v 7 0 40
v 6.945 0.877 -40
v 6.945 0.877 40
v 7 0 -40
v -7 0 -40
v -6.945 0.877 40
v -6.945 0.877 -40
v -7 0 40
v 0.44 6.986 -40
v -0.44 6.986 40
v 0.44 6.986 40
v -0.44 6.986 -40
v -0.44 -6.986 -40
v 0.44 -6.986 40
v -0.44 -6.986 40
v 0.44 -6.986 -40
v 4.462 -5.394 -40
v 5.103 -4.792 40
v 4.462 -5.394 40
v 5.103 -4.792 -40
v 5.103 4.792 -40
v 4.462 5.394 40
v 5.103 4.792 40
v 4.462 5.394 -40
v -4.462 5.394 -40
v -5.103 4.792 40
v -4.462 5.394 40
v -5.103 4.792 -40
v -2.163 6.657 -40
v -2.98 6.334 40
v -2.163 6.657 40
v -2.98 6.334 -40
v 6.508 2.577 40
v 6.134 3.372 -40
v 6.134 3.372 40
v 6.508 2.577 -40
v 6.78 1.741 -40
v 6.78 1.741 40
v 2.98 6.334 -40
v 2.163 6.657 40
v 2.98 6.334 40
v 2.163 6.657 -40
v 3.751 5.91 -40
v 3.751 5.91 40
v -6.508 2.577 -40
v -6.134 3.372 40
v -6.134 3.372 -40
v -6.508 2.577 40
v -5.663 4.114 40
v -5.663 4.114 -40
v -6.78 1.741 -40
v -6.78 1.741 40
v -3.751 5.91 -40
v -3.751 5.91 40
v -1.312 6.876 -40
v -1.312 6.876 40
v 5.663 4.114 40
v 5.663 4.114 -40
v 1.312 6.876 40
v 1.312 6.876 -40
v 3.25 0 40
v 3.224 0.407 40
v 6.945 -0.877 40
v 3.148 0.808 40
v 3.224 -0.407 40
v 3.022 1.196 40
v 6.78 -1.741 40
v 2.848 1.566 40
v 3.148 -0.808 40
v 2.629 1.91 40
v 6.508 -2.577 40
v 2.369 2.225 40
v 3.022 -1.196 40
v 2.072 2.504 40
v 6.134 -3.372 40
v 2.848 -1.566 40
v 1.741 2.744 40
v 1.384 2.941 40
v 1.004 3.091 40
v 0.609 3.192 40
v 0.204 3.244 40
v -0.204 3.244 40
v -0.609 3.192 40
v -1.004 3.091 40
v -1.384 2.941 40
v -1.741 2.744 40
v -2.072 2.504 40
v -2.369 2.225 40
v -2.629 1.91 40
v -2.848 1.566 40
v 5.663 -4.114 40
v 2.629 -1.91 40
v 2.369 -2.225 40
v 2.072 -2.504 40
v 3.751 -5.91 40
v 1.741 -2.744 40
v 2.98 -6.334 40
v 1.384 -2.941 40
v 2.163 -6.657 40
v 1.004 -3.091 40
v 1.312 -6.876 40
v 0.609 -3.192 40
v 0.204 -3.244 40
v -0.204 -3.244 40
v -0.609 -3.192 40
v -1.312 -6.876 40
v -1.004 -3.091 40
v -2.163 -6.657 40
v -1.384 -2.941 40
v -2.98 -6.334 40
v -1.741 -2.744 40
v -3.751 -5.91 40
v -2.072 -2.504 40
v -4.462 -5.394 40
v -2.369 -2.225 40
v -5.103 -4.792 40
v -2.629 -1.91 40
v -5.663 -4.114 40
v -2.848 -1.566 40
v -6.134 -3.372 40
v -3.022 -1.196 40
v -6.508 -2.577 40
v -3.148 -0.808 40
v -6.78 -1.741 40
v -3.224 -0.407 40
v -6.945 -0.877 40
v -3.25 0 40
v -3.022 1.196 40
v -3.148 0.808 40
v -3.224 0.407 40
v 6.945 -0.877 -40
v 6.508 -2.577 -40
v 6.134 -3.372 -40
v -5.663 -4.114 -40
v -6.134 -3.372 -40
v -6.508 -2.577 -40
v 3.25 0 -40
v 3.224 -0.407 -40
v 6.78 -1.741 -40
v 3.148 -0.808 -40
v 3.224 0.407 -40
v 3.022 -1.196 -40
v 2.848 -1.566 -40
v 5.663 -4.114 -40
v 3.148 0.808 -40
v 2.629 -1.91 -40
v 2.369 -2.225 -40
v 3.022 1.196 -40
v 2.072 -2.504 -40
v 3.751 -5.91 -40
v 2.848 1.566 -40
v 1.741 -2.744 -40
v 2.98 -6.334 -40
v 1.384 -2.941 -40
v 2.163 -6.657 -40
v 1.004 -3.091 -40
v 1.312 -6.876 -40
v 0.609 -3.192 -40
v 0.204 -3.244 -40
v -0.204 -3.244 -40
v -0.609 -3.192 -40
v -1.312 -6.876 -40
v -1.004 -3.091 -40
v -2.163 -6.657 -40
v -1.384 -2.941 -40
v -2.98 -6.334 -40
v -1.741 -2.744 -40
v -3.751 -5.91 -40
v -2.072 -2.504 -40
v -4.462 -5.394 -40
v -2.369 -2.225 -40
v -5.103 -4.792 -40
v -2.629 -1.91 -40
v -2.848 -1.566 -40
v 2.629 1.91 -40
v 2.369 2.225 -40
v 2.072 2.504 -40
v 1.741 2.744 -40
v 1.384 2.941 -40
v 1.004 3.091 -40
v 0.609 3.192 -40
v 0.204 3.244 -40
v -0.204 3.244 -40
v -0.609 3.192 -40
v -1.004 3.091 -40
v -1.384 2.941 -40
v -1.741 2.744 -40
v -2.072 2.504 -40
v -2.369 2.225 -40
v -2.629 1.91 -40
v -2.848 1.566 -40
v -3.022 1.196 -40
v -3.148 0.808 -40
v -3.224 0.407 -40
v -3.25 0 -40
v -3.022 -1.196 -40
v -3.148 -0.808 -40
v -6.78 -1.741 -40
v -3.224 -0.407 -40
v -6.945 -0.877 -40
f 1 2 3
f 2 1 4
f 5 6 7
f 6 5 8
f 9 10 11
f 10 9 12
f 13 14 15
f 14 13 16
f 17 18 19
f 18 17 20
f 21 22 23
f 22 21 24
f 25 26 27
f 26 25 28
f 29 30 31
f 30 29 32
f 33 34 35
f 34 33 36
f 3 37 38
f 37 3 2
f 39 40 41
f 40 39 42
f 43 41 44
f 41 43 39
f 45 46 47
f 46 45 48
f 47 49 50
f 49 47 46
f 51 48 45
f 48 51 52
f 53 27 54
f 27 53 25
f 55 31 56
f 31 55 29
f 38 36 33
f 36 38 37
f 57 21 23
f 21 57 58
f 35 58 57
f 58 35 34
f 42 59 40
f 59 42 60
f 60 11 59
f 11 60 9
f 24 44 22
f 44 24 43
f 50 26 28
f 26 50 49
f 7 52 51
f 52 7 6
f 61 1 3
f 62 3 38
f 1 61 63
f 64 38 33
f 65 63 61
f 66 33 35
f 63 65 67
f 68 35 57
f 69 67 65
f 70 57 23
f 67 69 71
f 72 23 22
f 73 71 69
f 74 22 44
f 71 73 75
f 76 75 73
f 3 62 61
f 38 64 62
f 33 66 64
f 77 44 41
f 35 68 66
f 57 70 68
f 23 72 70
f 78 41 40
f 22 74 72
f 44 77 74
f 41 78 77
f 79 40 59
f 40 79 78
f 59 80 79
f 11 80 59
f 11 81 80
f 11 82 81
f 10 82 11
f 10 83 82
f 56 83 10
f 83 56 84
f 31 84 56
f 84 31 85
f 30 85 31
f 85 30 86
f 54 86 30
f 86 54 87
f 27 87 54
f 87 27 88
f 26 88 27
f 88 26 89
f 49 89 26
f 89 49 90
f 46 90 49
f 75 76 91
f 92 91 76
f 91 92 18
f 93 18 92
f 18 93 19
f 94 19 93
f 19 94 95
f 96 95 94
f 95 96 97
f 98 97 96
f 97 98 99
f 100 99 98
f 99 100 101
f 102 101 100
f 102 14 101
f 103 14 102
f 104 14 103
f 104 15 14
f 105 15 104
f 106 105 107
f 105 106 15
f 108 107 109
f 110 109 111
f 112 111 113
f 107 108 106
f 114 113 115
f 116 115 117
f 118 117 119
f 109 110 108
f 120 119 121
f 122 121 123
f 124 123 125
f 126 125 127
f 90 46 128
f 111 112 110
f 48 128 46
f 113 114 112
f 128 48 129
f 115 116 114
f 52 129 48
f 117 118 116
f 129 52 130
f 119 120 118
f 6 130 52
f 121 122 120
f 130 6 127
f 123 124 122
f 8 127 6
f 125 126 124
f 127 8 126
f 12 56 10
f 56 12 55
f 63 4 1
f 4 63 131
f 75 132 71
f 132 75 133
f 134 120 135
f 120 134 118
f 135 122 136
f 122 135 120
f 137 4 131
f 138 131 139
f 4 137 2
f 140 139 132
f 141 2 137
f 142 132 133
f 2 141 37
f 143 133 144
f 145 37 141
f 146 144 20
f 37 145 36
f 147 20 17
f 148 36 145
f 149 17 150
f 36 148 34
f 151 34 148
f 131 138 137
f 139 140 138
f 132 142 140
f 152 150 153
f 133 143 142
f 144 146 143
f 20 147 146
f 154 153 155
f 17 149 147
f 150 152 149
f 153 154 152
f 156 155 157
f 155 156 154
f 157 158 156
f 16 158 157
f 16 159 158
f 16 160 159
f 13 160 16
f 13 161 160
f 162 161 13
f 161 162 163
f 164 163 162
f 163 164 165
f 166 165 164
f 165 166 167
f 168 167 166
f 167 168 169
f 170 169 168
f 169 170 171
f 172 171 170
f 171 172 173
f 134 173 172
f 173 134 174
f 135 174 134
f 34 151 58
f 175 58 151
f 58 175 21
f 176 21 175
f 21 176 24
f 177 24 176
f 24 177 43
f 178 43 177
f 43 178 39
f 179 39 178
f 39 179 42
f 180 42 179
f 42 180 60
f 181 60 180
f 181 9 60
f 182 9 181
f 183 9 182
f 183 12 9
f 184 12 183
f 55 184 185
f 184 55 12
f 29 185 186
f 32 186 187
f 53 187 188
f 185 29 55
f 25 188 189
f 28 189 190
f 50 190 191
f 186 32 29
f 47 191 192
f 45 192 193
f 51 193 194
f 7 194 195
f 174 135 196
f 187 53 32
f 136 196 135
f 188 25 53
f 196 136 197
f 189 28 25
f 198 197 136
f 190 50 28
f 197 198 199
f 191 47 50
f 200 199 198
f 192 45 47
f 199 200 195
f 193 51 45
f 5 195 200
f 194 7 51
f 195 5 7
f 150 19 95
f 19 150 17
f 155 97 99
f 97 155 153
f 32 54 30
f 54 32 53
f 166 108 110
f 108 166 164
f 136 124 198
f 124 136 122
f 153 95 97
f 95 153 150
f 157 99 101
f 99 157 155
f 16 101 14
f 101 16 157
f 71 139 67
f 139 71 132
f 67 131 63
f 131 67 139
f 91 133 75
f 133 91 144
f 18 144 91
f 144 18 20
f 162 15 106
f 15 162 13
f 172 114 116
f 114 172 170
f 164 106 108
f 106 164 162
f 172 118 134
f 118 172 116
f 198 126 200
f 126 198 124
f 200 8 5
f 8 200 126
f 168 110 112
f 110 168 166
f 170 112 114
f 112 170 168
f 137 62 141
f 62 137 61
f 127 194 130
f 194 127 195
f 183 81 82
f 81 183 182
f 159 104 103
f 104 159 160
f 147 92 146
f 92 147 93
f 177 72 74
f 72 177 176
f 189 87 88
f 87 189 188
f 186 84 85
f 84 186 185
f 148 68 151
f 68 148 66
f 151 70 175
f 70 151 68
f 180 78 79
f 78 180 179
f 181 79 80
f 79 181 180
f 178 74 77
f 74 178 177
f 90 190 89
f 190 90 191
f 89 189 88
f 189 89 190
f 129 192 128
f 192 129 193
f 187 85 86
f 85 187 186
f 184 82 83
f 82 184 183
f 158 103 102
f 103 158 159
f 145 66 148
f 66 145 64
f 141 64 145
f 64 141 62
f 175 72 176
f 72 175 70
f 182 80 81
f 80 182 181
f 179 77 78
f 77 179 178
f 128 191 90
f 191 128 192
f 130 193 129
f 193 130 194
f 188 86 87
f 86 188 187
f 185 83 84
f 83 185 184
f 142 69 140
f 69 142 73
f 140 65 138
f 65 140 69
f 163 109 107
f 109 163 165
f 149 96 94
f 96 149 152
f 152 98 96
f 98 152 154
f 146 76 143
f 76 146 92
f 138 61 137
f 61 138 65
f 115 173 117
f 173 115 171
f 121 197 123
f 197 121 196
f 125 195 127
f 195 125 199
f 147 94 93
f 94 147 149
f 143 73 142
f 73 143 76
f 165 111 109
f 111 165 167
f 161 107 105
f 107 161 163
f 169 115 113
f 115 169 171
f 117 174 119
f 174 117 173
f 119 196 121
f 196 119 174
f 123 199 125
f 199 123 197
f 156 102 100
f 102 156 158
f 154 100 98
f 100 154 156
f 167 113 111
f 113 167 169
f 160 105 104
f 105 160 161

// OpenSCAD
$fn = 50;


difference() {
	union() {
		translate(v = [0, 0, -40.0000000000]) {
			cylinder(h = 80, r = 7.0000000000);
		}
	}
	union() {
		translate(v = [0, 0, -100.0000000000]) {
			cylinder(h = 200, r = 3.2500000000);
		}
	}
}
